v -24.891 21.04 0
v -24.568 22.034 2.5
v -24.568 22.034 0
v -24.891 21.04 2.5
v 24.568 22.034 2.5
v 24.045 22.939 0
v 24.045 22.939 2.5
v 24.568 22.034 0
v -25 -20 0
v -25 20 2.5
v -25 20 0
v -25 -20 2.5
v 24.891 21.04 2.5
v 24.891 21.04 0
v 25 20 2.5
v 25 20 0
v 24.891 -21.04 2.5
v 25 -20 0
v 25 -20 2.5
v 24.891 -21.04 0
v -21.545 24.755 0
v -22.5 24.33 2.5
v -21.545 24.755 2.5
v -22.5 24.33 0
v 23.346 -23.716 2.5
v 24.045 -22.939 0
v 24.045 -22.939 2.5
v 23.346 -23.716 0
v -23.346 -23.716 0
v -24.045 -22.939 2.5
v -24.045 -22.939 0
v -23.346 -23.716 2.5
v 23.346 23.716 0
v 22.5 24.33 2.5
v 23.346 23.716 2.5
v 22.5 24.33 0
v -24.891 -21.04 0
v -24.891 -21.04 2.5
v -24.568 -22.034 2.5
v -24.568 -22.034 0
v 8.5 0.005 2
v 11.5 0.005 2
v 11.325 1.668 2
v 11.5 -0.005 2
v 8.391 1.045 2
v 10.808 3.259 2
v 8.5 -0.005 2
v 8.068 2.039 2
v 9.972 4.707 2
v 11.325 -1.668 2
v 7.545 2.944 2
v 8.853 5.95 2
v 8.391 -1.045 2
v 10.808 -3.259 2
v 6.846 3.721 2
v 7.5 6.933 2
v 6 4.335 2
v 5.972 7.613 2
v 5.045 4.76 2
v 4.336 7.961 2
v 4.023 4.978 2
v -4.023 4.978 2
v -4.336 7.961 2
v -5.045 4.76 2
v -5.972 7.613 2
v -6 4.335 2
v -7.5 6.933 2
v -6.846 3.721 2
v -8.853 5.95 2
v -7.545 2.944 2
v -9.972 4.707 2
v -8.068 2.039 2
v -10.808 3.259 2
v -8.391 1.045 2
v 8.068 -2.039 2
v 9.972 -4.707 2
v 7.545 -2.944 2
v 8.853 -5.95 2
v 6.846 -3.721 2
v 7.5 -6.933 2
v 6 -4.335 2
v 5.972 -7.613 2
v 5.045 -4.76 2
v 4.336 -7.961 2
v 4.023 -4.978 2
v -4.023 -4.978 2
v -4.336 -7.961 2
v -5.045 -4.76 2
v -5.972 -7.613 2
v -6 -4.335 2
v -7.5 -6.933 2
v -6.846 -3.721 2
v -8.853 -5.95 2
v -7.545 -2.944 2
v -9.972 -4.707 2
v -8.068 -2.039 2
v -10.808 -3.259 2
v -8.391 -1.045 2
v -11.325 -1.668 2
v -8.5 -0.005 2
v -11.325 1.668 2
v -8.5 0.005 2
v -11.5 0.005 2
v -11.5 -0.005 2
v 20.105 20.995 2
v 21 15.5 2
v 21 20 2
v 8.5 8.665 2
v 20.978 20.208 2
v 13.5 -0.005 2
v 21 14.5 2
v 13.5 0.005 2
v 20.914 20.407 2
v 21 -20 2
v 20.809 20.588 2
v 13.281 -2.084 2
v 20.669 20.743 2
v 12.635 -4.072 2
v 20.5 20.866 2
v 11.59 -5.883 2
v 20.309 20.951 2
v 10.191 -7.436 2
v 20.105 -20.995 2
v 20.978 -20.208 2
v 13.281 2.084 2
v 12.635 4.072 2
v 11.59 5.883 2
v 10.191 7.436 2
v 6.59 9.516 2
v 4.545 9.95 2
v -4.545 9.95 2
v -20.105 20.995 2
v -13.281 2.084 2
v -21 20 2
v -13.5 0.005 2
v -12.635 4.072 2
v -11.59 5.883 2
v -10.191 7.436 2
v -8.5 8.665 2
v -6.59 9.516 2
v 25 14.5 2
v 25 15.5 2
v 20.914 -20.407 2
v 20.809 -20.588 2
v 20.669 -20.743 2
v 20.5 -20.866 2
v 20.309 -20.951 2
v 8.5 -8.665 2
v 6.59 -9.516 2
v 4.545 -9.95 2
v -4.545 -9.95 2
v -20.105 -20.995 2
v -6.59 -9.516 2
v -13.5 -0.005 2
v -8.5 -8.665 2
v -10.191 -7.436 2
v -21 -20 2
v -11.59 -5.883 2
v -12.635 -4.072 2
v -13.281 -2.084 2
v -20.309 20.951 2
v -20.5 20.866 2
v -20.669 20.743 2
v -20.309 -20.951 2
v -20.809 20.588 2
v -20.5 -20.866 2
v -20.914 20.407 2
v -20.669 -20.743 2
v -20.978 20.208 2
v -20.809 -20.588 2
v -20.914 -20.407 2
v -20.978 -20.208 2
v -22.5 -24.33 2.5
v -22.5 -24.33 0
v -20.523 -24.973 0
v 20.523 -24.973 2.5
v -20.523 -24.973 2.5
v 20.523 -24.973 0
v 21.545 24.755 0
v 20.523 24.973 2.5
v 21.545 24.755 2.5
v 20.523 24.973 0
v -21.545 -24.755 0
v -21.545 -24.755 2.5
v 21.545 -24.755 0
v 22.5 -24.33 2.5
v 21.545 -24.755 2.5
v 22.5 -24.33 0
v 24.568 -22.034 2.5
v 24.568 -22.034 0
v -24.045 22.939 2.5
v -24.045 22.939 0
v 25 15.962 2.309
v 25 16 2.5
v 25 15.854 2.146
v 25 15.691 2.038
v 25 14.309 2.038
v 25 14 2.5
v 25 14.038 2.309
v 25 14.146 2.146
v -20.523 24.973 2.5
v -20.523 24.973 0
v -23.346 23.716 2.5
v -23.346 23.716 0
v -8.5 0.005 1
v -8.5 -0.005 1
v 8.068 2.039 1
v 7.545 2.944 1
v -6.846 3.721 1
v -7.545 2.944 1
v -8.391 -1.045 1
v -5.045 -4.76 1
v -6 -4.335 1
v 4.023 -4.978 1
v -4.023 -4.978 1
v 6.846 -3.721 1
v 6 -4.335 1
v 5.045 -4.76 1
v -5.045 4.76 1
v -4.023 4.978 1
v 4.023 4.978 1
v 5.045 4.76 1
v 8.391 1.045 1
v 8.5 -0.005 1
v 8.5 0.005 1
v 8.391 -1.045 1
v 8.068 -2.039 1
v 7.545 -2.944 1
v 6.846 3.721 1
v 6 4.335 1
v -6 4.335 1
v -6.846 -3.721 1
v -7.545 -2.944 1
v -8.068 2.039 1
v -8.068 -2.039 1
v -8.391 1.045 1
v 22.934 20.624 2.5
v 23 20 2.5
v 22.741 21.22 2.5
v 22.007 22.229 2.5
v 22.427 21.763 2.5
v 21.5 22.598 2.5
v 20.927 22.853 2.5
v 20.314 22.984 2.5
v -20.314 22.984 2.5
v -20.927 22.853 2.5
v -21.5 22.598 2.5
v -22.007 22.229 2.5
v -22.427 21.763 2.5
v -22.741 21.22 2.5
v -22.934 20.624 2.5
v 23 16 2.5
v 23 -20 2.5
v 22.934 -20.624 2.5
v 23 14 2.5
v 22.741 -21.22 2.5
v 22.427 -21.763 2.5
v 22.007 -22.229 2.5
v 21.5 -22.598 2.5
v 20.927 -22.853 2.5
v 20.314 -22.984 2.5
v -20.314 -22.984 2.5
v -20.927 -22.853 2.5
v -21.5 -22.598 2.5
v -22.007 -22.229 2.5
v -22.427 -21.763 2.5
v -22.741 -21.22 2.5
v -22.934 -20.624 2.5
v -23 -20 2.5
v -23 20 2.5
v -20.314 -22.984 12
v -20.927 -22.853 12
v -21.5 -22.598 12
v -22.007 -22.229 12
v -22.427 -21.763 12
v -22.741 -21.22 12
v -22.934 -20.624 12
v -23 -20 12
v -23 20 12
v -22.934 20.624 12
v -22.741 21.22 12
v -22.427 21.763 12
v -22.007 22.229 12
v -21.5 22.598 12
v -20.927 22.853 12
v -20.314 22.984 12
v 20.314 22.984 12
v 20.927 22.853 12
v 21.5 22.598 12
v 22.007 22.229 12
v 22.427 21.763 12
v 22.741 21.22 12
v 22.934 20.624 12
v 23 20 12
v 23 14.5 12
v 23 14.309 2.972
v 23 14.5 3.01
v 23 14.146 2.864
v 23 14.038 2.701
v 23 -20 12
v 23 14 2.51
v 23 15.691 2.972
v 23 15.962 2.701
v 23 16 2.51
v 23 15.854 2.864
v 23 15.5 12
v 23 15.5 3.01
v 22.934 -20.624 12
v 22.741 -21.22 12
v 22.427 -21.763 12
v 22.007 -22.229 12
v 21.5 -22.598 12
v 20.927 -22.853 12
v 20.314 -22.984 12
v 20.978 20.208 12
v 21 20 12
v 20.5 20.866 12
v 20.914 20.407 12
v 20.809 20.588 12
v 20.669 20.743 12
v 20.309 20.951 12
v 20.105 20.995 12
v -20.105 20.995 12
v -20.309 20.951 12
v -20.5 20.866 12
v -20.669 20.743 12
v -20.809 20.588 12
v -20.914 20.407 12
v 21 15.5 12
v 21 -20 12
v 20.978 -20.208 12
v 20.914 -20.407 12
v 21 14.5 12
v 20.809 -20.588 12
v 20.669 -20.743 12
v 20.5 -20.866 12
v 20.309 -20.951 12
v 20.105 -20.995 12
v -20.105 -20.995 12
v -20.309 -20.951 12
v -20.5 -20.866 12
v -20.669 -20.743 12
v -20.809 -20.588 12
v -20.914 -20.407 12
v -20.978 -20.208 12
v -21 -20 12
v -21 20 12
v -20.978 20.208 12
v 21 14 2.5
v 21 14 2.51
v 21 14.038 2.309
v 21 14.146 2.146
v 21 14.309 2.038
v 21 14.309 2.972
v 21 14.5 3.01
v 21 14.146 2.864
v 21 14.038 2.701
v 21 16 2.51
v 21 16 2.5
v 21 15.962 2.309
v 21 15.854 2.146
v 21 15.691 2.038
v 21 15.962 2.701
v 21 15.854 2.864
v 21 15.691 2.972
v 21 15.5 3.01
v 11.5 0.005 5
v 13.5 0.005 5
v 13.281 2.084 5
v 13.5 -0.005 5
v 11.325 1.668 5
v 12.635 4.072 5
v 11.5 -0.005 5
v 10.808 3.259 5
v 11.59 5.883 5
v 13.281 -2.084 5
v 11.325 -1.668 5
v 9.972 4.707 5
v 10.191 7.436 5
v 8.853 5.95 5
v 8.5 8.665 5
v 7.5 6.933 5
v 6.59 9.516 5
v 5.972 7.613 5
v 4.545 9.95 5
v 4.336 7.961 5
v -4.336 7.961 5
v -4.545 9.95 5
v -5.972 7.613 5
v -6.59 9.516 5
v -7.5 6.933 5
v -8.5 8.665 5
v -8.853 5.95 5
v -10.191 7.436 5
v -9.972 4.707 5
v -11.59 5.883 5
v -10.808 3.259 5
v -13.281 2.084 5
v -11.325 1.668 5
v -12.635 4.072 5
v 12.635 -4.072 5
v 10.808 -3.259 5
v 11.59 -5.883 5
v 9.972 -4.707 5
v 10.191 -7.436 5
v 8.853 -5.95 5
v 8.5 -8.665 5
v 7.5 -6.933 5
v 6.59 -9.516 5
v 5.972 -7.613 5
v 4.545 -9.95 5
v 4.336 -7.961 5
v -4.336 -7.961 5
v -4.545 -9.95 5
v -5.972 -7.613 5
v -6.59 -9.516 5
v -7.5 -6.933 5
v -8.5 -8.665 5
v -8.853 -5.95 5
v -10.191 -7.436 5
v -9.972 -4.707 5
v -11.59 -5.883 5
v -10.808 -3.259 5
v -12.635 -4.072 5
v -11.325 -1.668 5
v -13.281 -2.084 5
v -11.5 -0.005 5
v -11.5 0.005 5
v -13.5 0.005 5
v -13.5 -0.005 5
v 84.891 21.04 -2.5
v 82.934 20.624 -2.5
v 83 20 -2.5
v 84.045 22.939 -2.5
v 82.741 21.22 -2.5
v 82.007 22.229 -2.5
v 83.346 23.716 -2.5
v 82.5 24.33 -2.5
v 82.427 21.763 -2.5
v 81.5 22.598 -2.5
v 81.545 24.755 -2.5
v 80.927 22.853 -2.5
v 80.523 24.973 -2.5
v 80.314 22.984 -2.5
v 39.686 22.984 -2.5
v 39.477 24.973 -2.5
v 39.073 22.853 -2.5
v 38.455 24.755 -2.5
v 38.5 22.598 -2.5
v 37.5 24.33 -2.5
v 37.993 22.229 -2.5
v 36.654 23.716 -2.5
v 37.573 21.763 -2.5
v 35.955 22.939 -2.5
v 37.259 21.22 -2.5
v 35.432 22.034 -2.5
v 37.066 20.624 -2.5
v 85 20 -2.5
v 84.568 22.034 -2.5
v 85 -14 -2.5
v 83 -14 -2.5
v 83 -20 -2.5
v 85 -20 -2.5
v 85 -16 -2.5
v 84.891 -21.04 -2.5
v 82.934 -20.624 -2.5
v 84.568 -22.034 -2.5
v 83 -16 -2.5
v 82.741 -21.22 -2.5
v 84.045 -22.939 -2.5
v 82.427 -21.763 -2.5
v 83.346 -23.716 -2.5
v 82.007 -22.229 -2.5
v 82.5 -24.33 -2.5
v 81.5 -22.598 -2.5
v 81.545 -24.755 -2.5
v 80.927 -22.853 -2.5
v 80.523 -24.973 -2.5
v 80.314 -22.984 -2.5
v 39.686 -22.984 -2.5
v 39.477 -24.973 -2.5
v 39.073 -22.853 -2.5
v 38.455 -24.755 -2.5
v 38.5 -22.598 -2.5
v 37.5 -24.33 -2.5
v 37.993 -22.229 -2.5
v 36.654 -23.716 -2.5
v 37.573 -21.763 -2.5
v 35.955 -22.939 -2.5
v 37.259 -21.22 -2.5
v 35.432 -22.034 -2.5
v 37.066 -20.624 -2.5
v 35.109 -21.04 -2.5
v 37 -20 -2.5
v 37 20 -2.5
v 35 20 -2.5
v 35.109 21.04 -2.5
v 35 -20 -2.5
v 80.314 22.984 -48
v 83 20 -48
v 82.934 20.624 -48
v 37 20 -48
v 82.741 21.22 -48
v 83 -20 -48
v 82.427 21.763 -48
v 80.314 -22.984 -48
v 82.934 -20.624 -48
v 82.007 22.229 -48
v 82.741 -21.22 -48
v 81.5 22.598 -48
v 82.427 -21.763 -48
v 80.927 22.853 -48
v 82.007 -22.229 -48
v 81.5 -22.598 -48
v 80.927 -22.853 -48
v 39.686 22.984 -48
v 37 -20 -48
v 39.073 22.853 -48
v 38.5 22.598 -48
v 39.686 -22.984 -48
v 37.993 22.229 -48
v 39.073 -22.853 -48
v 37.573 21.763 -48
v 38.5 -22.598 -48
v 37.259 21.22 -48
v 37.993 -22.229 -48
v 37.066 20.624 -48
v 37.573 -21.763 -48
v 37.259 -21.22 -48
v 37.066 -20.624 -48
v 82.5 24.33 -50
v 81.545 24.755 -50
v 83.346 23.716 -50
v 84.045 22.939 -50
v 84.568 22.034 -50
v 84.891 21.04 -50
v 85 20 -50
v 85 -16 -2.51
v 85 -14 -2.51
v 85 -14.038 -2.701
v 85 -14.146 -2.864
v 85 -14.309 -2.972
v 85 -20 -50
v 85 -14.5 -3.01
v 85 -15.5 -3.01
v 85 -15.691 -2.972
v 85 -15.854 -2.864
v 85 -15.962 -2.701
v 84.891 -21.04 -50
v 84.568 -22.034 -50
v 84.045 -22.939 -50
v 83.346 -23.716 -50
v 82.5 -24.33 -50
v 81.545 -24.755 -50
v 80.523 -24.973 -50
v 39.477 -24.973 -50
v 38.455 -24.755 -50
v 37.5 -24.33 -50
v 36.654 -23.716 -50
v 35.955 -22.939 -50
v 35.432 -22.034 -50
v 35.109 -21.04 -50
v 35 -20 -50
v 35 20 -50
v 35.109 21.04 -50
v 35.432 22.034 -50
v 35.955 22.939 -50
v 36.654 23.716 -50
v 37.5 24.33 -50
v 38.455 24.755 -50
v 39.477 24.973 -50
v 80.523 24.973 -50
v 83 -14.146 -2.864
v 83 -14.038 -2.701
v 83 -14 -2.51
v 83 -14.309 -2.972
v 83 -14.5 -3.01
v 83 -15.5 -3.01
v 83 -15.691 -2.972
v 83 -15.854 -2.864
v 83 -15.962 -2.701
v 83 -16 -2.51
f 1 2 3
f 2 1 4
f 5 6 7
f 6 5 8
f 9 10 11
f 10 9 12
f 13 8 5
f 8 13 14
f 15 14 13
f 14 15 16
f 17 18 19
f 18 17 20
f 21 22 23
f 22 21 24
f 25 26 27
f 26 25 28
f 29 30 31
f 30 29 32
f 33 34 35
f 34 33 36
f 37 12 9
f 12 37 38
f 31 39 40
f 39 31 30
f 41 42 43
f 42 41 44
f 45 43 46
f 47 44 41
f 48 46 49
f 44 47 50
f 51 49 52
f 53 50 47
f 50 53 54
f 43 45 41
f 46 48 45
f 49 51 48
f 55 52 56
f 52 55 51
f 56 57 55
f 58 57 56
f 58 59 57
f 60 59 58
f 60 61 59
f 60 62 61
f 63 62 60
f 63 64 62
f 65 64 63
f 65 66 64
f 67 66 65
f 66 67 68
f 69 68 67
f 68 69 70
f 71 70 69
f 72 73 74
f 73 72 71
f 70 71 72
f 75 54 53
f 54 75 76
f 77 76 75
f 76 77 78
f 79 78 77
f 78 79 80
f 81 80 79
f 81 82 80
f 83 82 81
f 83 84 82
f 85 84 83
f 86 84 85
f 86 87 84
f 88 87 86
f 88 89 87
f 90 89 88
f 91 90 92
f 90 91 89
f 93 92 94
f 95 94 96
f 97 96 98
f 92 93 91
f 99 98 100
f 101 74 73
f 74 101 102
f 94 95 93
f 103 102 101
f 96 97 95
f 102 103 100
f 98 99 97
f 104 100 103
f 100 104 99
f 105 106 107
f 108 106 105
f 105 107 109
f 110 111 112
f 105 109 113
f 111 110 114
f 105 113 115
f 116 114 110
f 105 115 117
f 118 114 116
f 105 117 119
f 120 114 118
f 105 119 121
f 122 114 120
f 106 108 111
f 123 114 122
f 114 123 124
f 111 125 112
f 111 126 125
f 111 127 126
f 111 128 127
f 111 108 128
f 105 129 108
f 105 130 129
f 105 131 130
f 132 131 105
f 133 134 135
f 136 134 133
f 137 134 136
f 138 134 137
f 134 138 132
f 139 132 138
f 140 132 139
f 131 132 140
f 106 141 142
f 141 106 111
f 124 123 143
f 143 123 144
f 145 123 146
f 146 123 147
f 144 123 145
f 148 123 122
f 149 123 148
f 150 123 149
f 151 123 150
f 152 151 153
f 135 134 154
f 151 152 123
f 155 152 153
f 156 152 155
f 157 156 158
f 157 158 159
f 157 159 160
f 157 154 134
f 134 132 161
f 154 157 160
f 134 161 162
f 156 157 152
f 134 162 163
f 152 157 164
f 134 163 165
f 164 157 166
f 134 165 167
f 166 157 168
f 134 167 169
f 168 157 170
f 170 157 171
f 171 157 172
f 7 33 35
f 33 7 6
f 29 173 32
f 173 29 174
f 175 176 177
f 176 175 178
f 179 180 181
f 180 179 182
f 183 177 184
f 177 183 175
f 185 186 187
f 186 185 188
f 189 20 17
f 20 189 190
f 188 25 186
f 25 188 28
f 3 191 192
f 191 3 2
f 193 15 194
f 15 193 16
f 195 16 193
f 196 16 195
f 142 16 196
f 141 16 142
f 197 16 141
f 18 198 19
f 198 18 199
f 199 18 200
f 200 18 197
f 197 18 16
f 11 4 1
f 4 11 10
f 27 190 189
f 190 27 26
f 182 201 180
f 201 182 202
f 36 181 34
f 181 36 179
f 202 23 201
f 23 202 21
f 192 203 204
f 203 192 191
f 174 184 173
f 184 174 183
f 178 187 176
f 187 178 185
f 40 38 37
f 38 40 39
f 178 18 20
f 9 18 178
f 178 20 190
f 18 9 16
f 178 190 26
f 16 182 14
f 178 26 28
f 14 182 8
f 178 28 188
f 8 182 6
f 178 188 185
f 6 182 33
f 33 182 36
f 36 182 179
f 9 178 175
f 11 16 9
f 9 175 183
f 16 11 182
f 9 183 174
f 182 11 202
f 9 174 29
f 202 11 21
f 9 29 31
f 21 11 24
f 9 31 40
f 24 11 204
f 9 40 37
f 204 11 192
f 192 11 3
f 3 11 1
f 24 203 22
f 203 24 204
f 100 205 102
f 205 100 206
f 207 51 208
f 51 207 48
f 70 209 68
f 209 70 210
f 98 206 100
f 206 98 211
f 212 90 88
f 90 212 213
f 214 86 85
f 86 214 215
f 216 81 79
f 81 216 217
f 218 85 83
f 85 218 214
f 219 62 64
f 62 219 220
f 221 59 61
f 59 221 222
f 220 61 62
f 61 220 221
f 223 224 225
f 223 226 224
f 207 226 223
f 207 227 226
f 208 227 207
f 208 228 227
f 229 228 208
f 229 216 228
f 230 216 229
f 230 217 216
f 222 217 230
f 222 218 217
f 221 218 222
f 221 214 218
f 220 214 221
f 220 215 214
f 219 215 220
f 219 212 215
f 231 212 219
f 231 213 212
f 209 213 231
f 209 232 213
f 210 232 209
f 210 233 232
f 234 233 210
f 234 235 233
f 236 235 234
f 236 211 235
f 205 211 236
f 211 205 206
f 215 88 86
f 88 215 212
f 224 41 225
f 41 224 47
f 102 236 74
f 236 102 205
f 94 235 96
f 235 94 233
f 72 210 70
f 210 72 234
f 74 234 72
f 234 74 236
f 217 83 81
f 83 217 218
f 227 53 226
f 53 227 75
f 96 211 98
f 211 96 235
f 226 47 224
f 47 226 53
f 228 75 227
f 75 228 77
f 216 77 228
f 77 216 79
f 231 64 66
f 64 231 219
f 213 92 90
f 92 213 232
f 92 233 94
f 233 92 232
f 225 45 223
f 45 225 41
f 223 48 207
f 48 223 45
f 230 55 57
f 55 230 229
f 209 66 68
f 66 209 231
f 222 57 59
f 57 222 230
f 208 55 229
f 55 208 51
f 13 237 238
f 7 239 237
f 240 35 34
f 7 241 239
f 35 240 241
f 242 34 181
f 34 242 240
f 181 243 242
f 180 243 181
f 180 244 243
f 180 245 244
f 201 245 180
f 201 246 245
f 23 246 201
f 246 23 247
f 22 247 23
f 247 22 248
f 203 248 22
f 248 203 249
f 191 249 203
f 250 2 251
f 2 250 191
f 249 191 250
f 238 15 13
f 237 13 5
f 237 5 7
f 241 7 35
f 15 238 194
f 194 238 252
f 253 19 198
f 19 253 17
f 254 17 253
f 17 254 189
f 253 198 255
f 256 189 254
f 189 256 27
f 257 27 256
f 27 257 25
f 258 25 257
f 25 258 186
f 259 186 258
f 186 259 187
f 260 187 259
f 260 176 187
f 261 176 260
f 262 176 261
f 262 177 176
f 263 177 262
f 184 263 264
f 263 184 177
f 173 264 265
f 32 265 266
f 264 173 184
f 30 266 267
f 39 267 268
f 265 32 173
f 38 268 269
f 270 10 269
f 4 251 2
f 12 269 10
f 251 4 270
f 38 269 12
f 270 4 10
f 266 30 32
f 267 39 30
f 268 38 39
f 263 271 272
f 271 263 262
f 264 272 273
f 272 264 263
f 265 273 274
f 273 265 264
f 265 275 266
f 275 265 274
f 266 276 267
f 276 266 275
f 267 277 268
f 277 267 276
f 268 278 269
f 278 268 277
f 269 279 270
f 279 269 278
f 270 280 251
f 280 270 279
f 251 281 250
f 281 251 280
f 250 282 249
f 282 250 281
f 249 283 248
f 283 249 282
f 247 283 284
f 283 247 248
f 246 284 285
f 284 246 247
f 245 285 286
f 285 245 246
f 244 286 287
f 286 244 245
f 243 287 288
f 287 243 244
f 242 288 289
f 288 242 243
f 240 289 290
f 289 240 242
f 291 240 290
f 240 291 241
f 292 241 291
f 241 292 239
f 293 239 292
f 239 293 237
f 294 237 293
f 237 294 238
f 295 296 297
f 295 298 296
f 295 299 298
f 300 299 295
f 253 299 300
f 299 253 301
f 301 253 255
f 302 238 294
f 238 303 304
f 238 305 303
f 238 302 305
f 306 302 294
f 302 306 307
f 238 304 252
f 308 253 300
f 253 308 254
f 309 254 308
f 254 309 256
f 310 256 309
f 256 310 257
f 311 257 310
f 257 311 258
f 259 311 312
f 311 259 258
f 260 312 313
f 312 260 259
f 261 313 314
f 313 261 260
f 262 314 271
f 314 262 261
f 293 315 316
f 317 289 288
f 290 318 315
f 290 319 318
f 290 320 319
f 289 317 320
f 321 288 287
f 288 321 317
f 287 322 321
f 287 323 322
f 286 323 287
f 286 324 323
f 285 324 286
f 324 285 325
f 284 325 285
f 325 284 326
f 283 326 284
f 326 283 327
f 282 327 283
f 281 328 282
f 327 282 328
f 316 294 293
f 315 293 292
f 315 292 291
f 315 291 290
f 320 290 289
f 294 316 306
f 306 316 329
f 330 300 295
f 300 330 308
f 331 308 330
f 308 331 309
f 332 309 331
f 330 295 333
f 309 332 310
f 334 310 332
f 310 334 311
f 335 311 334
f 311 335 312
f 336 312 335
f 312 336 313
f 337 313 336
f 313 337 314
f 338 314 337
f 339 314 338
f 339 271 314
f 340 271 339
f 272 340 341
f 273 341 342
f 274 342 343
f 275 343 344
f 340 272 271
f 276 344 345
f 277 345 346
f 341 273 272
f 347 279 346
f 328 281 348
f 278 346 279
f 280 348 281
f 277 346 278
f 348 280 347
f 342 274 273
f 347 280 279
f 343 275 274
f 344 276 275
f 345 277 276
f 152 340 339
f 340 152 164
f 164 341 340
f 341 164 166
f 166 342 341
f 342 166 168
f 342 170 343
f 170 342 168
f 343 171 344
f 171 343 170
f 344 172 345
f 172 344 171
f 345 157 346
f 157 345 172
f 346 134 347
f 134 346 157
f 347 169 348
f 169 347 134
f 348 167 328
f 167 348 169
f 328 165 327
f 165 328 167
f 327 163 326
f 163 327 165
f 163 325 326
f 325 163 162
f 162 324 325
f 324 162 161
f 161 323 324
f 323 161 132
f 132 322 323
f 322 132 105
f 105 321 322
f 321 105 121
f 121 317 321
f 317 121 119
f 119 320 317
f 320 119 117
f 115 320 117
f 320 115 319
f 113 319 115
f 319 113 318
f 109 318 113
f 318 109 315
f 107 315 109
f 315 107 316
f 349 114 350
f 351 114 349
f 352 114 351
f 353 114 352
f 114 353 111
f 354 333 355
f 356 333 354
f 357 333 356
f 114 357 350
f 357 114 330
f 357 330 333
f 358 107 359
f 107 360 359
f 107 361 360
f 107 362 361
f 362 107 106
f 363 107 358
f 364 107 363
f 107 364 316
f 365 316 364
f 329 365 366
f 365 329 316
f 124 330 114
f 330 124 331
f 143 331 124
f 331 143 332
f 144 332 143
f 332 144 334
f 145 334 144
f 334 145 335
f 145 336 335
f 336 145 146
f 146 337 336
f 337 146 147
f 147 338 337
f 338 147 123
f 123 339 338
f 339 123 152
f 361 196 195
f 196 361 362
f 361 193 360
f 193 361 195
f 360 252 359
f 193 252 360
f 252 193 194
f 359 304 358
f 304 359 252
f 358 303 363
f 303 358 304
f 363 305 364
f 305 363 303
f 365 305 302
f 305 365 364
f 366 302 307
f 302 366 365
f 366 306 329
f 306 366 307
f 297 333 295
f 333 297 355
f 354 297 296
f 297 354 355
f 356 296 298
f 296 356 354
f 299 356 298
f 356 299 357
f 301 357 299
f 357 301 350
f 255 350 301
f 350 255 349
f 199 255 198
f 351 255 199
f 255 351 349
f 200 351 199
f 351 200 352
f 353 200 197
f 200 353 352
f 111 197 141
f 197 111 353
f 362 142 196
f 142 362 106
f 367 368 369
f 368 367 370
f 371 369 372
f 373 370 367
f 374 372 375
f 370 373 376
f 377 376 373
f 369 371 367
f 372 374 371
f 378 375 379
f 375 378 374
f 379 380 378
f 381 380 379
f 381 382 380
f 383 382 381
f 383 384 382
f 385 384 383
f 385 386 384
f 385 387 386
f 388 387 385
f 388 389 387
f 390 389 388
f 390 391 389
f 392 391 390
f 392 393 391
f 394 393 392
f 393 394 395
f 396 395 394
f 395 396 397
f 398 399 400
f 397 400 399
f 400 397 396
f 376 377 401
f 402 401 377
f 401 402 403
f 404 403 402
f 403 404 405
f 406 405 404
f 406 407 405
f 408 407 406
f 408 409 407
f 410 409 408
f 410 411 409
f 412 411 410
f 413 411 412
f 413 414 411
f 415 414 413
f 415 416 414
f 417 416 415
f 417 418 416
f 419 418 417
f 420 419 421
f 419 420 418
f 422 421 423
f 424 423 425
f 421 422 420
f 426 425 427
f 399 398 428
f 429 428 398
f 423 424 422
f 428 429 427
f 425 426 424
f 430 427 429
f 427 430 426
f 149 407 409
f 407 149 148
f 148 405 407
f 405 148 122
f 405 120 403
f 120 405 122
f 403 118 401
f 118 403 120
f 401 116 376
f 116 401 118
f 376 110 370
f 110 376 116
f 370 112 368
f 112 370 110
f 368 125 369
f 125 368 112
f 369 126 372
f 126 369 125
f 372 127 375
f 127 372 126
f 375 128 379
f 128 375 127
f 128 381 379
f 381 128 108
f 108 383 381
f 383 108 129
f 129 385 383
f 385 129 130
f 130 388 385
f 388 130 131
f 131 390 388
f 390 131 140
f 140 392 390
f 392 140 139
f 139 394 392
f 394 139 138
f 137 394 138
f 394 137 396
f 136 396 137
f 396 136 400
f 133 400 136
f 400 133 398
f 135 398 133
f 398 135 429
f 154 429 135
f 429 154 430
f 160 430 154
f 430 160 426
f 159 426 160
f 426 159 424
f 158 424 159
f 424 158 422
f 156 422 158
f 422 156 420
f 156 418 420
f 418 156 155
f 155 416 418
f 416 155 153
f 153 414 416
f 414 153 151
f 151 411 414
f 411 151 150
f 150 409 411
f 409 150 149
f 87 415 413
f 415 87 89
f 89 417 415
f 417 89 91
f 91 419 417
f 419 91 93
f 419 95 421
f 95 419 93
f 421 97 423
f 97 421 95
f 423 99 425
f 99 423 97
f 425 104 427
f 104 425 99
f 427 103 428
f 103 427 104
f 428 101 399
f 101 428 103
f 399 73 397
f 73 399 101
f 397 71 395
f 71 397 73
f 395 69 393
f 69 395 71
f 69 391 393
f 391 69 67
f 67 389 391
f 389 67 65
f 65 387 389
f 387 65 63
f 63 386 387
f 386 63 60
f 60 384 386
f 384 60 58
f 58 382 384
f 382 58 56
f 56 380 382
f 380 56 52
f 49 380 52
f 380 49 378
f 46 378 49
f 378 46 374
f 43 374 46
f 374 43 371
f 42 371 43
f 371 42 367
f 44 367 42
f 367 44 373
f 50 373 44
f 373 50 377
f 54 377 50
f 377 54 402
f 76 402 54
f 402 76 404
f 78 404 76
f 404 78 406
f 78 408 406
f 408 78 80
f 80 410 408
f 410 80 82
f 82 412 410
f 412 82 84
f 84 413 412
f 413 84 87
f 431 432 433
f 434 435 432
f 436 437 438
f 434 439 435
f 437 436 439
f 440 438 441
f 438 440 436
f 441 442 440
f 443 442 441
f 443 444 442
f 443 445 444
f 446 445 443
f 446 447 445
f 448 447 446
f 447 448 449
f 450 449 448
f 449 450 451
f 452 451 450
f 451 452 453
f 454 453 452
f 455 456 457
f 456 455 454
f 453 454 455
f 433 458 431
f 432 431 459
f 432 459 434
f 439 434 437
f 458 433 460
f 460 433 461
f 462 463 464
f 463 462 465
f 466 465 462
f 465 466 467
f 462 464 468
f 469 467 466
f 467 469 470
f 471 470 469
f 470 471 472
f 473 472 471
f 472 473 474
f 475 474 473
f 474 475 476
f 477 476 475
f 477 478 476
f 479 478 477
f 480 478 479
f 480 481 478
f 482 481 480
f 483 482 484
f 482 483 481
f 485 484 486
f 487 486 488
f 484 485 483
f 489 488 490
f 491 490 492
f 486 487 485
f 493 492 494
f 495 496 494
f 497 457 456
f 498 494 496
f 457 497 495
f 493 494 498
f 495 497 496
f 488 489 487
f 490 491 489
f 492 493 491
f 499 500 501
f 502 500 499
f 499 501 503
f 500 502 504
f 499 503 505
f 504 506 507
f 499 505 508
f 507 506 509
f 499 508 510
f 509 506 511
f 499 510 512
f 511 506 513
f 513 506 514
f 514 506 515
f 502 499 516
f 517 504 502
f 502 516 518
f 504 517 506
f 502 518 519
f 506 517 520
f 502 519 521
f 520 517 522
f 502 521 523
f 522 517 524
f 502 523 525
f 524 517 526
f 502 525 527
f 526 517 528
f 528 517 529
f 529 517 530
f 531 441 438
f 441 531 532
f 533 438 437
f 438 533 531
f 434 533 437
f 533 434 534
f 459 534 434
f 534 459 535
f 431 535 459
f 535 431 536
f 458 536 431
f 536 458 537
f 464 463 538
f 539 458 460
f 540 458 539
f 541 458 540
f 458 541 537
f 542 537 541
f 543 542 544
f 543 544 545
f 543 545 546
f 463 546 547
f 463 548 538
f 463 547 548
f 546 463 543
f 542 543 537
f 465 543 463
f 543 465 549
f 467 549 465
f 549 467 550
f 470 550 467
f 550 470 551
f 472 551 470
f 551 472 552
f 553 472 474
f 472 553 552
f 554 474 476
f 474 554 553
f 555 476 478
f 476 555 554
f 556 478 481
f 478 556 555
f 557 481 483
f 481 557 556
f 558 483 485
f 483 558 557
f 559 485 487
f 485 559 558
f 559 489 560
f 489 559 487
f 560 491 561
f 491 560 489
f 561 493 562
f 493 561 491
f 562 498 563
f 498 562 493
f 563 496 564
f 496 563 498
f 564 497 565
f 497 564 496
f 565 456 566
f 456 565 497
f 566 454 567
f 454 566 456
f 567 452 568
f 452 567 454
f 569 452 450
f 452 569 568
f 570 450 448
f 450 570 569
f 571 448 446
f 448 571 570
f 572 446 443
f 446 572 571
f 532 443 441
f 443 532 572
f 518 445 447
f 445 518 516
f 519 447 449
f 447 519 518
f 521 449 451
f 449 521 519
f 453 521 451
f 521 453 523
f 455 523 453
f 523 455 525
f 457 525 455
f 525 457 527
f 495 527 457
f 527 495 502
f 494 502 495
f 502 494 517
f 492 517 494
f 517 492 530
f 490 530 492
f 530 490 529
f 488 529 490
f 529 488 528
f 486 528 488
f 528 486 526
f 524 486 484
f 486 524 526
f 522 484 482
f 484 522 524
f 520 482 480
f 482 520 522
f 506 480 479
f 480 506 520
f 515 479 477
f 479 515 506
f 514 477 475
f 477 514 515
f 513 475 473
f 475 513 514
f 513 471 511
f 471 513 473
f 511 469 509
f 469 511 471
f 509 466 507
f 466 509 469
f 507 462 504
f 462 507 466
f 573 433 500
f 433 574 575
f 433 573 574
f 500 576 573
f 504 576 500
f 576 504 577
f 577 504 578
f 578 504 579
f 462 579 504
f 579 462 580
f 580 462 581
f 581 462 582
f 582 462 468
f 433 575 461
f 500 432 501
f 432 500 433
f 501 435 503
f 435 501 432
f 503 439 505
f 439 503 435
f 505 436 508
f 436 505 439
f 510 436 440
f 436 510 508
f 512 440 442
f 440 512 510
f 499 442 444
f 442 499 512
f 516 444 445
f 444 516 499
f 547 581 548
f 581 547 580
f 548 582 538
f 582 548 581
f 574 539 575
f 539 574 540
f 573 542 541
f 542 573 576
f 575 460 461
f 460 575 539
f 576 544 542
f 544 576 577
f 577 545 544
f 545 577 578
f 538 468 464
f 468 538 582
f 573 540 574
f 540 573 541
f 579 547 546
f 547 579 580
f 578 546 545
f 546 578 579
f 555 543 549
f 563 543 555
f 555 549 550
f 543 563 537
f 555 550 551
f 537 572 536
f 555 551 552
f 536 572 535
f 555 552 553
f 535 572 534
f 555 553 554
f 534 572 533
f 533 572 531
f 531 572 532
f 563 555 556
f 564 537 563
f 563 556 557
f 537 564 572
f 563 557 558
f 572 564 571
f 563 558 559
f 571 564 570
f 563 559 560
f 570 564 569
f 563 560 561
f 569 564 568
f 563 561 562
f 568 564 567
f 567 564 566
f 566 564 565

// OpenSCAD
$fs=.2;

wire_d=1;
h=50;
wire_x=15;

module speaker(d=0){
	minkowski(){
		square([7,.01],center=true);
		circle(8+d);
	}
}

module shape(d=0){
	minkowski(){
		square([40,40],center=true);
		circle(5+d);
	}
}

module wire_notch(){
	minkowski(){
		translate([-wire_d/2,0])square([wire_d,.01]);
		circle(d=wire_d);
	}
}


difference(){
	linear_extrude(2)shape();
	translate([0,0,1])linear_extrude(2)speaker(-3);
}
translate([0,0,2]){
	linear_extrude(3)difference(){
		speaker(2);
		speaker();
	}
	difference(){
		union(){
			linear_extrude(wire_d/2)difference(){
				shape();
				shape(-2);
			}
			linear_extrude(10)difference(){
				shape(-2);
				shape(-4);
			}
		}
		translate([0,wire_x,wire_d/2])rotate([90,0,90])linear_extrude(100)union(){
			wire_notch();
			translate([-wire_d/2,0])square([wire_d,10]);
		}
	}
}

rotate([180,0,0])translate([60,0,2+wire_d/2]){
	difference(){
		linear_extrude(h-2-wire_d/2-2)difference(){
			shape();
			shape(-2);
		}
		translate([0,wire_x,0])rotate([90,0,90])linear_extrude(100)wire_notch();
	}
	translate([0,0,h-2-wire_d/2-2])linear_extrude(2)shape();
}

/*
difference(){
	linear_extrude(2)minkowski(){
		circle(r=5);
		square([40,40],center=true);
	}
	translate([0,0,1.01])linear_extrude(1)minkowski(){
		circle(r=5);
		square([7,.001],center=true);
	}
}
translate([0,0,2])linear_extrude(3)difference(){
	minkowski(){
		circle(r=10);
		square([7,.001],center=true);
	}
	minkowski(){
		circle(r=8);
		square([7,.001],center=true);
	}
}
translate([15,15,2+1/2])rotate([0,90,0])linear_extrude(5)difference(){
	square([2,5],center=true);
	minkowski(){
		circle(d=1);
		square([.001,1],center=true);
	}
	square([3,1],center=true);
}

translate([60,0,0])rotate([0,180,0]){
	difference(){
		translate([0,0,.01])linear_extrude(50)minkowski(){
			circle(r=6);
			square([40,40],center=true);
		}
		linear_extrude(48)minkowski(){
			circle(r=4);
			square([40,40],center=true);
		}
		linear_extrude(2)minkowski(){
			circle(r=5);
			square([40,40],center=true);
		}
		translate([50/2-1,15,0])rotate([0,90,0])linear_extrude(2)#minkowski(){
			circle(r=.5);
			square([5,1],center=true);
		}
	}

}
*/
